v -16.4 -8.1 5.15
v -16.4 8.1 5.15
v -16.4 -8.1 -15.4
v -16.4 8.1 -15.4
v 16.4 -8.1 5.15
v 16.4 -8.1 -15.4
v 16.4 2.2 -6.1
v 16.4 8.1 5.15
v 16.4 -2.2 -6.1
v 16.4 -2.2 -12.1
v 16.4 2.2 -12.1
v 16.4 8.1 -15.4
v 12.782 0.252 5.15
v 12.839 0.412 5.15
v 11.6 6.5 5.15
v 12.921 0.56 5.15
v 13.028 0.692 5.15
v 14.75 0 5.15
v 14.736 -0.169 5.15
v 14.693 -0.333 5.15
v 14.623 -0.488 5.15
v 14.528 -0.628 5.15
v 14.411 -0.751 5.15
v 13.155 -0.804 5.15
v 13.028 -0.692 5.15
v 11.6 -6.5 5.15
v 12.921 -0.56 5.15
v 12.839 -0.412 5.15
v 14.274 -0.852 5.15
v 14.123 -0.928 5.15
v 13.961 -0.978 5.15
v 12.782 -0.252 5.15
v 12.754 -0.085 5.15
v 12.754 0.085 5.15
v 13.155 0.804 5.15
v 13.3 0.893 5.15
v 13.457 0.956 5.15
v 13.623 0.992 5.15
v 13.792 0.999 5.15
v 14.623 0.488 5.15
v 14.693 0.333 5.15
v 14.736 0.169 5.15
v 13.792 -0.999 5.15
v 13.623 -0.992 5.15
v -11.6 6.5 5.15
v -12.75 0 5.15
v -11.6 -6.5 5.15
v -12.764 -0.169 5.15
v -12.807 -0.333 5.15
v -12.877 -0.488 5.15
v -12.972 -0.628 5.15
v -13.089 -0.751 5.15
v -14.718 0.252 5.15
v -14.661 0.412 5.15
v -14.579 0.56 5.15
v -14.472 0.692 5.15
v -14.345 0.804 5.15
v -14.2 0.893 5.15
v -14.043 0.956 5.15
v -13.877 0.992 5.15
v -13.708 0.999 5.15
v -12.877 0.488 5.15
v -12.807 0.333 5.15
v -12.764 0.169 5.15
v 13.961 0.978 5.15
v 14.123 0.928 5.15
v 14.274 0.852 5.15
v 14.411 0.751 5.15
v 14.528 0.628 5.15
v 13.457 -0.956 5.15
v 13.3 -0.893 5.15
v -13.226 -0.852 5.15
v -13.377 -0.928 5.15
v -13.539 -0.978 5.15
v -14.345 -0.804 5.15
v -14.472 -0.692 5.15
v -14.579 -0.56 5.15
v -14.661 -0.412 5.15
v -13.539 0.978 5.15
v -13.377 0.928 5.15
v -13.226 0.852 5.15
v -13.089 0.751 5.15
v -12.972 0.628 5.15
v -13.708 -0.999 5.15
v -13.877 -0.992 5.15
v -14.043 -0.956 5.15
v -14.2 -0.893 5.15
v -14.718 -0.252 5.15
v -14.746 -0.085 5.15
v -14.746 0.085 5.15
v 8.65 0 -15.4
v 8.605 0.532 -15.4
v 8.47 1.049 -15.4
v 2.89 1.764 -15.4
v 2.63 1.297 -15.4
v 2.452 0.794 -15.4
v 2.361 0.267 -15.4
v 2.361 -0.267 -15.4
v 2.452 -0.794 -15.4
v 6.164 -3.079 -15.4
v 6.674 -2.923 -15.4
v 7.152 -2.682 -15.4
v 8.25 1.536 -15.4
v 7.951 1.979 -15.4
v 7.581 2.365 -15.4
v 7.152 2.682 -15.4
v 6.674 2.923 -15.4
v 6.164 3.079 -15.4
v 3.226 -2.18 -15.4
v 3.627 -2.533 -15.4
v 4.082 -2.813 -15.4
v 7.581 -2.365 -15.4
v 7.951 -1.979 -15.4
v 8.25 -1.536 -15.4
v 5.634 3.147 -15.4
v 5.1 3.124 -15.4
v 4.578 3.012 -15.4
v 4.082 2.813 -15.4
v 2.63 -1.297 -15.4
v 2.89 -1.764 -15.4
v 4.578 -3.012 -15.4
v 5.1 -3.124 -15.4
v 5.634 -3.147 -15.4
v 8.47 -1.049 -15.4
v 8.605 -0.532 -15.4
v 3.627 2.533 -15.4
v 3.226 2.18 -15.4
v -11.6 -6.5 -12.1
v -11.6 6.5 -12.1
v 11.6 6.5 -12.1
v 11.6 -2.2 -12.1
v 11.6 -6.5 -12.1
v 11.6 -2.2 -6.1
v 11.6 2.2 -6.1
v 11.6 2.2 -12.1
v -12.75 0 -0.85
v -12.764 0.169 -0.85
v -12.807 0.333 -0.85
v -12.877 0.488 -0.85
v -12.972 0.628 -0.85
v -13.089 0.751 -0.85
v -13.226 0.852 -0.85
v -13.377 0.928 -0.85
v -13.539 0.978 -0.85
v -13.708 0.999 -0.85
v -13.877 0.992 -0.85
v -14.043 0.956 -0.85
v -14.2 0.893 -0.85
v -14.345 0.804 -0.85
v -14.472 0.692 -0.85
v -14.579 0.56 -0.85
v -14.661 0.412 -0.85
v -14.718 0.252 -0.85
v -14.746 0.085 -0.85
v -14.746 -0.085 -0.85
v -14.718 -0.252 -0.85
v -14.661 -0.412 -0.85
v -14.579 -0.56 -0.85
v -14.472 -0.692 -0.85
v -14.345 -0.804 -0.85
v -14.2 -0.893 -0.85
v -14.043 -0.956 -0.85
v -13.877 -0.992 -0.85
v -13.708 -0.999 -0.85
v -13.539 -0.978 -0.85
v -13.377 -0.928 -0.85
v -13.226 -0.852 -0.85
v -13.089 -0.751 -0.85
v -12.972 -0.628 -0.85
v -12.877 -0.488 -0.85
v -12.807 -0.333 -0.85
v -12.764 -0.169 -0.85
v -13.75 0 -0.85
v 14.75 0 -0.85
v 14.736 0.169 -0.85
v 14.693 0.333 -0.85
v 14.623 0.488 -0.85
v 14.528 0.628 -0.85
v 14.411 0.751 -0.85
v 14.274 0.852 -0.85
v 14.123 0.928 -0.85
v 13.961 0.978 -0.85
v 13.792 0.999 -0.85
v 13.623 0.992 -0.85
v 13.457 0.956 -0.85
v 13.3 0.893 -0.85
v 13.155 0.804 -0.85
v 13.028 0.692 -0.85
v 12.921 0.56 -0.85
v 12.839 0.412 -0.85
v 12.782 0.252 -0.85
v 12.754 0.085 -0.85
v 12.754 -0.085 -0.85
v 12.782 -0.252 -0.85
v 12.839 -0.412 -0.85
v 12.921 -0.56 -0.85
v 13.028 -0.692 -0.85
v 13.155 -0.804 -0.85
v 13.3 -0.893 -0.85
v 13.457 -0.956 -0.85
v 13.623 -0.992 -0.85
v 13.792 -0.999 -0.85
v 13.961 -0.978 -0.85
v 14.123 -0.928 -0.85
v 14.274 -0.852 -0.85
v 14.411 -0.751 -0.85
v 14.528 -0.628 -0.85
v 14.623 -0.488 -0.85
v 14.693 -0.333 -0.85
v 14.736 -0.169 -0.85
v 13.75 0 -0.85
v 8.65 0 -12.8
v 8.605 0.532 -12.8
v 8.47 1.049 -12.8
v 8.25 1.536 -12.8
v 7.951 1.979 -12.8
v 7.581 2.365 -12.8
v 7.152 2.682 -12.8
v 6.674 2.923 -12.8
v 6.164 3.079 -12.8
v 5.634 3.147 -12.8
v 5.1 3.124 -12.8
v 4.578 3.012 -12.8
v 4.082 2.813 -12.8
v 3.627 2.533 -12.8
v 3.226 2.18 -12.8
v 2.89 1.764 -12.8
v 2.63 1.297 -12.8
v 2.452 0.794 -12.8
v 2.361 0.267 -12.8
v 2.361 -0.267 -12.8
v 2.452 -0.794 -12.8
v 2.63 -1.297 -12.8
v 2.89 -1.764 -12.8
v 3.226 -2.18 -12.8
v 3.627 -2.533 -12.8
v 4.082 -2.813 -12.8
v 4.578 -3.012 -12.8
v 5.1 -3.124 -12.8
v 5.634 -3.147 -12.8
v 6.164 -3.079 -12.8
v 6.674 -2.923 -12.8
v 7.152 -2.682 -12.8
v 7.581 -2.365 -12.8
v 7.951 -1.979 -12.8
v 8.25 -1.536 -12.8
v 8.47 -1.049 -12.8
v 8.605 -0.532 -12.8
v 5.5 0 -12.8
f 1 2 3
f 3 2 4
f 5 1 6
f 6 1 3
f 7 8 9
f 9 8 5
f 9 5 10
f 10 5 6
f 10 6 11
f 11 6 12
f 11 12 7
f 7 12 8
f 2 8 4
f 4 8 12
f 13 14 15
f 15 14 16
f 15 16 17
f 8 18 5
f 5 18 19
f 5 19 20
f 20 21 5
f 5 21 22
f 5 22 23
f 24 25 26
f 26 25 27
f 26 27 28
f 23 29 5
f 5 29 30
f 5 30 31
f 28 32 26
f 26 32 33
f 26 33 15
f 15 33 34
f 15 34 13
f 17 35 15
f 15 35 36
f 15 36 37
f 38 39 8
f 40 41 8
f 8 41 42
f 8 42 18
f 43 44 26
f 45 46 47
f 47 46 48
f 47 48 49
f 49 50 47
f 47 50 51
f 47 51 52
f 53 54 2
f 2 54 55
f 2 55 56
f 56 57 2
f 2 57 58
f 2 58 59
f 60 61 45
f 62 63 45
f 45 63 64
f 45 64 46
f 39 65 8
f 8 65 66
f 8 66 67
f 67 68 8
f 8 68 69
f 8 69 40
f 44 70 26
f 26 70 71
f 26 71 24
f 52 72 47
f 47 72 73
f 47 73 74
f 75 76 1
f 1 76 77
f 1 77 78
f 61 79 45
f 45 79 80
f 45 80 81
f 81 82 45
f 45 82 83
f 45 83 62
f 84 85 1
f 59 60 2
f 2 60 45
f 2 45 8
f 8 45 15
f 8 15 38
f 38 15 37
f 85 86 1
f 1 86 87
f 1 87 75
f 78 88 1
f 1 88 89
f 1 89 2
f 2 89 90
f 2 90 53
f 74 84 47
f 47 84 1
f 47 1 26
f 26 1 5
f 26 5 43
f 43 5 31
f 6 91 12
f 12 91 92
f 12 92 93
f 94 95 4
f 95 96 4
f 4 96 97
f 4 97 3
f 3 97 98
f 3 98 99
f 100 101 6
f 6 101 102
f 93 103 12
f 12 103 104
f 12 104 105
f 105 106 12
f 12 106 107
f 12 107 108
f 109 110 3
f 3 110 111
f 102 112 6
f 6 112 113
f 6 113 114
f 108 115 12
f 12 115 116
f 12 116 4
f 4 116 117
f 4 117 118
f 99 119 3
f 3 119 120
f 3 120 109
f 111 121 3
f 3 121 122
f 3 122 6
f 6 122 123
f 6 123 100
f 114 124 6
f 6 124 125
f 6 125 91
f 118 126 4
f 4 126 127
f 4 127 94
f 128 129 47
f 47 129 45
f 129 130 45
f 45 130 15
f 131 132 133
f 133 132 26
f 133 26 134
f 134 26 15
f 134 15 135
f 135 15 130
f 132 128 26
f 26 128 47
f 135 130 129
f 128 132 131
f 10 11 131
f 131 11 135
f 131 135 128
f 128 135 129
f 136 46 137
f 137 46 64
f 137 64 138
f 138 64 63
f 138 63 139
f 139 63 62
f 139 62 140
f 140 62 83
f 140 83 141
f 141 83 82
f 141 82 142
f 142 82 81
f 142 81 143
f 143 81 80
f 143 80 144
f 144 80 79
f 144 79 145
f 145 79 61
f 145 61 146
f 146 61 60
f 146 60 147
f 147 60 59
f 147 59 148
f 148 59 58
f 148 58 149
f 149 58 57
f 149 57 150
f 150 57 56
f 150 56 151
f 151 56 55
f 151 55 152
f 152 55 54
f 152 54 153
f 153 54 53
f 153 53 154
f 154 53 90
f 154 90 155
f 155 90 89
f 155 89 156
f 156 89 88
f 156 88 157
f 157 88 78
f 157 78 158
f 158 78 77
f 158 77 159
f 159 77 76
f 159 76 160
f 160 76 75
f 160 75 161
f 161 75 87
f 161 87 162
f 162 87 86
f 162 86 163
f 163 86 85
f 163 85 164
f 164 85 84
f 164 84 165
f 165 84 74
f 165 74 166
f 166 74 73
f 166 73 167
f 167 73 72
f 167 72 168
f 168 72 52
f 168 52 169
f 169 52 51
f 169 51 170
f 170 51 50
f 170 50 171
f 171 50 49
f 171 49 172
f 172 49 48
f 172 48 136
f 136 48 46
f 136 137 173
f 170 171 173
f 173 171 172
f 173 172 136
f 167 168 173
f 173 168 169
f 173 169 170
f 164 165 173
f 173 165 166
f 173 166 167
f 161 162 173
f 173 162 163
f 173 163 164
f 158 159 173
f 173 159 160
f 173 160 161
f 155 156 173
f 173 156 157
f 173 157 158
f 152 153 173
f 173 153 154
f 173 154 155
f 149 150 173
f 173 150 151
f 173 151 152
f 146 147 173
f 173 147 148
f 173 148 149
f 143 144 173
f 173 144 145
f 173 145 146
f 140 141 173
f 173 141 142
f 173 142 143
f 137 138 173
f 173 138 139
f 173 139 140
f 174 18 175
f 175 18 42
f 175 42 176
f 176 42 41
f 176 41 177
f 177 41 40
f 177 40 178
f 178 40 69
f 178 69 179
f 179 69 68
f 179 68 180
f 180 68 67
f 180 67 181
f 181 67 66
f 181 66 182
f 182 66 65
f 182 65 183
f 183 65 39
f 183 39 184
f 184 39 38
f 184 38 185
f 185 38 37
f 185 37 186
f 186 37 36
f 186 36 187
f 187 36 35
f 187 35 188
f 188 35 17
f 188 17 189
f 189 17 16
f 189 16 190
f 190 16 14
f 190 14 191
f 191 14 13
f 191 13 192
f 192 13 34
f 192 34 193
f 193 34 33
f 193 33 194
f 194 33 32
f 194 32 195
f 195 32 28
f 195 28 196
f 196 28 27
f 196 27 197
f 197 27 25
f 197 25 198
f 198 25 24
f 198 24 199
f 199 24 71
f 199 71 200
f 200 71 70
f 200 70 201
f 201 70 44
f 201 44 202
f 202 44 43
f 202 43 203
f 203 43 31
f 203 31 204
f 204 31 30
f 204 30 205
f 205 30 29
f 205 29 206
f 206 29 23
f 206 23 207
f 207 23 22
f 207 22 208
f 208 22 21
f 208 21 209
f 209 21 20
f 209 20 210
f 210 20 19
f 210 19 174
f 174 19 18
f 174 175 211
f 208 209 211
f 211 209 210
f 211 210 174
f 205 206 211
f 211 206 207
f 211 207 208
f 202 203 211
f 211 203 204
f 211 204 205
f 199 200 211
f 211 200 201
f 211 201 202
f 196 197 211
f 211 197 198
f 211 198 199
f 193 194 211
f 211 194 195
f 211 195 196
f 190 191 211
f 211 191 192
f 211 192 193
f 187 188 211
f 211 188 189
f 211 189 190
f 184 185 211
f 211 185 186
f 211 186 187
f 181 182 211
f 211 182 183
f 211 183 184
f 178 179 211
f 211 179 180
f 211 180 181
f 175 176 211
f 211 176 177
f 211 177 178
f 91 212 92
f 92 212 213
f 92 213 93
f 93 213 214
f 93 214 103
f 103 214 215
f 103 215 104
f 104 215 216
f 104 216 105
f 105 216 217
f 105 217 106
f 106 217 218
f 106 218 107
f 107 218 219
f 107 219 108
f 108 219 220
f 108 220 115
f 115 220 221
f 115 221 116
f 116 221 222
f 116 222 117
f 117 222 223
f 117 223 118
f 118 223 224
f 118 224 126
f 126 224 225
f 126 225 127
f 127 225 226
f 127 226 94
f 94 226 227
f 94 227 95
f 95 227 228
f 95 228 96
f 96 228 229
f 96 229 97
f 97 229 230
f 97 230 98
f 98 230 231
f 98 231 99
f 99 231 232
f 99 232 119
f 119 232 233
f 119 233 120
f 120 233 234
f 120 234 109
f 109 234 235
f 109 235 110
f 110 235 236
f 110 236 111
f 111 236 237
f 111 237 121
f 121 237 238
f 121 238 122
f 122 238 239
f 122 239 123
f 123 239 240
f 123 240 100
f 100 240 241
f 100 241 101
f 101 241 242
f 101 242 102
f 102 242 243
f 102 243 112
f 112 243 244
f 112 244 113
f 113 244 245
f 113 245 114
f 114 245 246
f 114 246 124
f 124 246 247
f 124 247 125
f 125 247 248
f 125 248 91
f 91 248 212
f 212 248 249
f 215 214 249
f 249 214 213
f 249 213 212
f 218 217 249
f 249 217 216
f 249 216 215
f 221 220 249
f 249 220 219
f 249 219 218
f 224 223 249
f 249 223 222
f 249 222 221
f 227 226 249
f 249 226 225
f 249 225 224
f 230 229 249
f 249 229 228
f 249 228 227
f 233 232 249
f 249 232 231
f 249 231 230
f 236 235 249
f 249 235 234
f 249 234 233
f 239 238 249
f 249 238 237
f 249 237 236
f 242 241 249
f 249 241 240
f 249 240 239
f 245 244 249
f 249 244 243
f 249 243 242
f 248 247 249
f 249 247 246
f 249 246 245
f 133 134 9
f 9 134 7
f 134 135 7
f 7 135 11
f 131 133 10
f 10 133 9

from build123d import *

# Parameters (mm, degrees)
BOSS_EXTRUDE1_START = -5.125
SKETCH1_W           = 32.8
SKETCH1_H           = 16.2
BOSS_EXTRUDE1_DEPTH = 10.275
CUT_EXTRUDE1_START  = -3.475
SKETCH2_W           = 23.2
SKETCH2_H           = 13
CUT_EXTRUDE1_DEPTH  = 8.625
CUT_EXTRUDE2_START  = 2.15
SKETCH3_R           = 1
CUT_EXTRUDE2_DEPTH  = 3
CUT_EXTRUDE3_START  = 2.15
SKETCH4_R           = 1
CUT_EXTRUDE3_DEPTH  = 3
CUT_EXTRUDE4_START  = -14.1
SKETCH5_R           = 3.15
CUT_EXTRUDE4_DEPTH  = 1.3
CUT_EXTRUDE5_START  = 14
SKETCH6_W           = 6
SKETCH6_H           = 4.4
CUT_EXTRUDE5_DEPTH  = 2.4


with BuildPart() as part:
    # Sketch1 → Boss-Extrude1 (new, symmetric)
    with BuildSketch(Plane.XY.offset(BOSS_EXTRUDE1_START)):
        Rectangle(SKETCH1_W, SKETCH1_H)
    extrude(amount=BOSS_EXTRUDE1_DEPTH, both=True)

    # Sketch2 → Cut-Extrude1 (cut, symmetric)
    with BuildSketch(Plane.XY.offset(CUT_EXTRUDE1_START)):
        Rectangle(SKETCH2_W, SKETCH2_H)
    extrude(amount=CUT_EXTRUDE1_DEPTH, both=True, mode=Mode.SUBTRACT)

    # Sketch3 → Cut-Extrude2 (cut, symmetric)
    with BuildSketch(Plane.XY.offset(CUT_EXTRUDE2_START)):
        with Locations((-13.75, 0)):
            Circle(SKETCH3_R)
    extrude(amount=CUT_EXTRUDE2_DEPTH, both=True, mode=Mode.SUBTRACT)

    # Sketch4 → Cut-Extrude3 (cut, symmetric)
    with BuildSketch(Plane.XY.offset(CUT_EXTRUDE3_START)):
        with Locations((13.75, 0)):
            Circle(SKETCH4_R)
    extrude(amount=CUT_EXTRUDE3_DEPTH, both=True, mode=Mode.SUBTRACT)

    # Sketch5 → Cut-Extrude4 (cut, symmetric)
    with BuildSketch(Plane.XY.offset(CUT_EXTRUDE4_START)):
        with Locations((5.5, 0)):
            Circle(SKETCH5_R)
    extrude(amount=CUT_EXTRUDE4_DEPTH, both=True, mode=Mode.SUBTRACT)

    # Sketch6 → Cut-Extrude5 (cut, symmetric)
    with BuildSketch(Plane(origin=(0, 0, 0), x_dir=(0, 0, -1), z_dir=(1, 0, 0)).offset(CUT_EXTRUDE5_START)):
        with Locations((9.1, 0)):
            Rectangle(SKETCH6_W, SKETCH6_H)
    extrude(amount=CUT_EXTRUDE5_DEPTH, both=True, mode=Mode.SUBTRACT)


solid = part.part
